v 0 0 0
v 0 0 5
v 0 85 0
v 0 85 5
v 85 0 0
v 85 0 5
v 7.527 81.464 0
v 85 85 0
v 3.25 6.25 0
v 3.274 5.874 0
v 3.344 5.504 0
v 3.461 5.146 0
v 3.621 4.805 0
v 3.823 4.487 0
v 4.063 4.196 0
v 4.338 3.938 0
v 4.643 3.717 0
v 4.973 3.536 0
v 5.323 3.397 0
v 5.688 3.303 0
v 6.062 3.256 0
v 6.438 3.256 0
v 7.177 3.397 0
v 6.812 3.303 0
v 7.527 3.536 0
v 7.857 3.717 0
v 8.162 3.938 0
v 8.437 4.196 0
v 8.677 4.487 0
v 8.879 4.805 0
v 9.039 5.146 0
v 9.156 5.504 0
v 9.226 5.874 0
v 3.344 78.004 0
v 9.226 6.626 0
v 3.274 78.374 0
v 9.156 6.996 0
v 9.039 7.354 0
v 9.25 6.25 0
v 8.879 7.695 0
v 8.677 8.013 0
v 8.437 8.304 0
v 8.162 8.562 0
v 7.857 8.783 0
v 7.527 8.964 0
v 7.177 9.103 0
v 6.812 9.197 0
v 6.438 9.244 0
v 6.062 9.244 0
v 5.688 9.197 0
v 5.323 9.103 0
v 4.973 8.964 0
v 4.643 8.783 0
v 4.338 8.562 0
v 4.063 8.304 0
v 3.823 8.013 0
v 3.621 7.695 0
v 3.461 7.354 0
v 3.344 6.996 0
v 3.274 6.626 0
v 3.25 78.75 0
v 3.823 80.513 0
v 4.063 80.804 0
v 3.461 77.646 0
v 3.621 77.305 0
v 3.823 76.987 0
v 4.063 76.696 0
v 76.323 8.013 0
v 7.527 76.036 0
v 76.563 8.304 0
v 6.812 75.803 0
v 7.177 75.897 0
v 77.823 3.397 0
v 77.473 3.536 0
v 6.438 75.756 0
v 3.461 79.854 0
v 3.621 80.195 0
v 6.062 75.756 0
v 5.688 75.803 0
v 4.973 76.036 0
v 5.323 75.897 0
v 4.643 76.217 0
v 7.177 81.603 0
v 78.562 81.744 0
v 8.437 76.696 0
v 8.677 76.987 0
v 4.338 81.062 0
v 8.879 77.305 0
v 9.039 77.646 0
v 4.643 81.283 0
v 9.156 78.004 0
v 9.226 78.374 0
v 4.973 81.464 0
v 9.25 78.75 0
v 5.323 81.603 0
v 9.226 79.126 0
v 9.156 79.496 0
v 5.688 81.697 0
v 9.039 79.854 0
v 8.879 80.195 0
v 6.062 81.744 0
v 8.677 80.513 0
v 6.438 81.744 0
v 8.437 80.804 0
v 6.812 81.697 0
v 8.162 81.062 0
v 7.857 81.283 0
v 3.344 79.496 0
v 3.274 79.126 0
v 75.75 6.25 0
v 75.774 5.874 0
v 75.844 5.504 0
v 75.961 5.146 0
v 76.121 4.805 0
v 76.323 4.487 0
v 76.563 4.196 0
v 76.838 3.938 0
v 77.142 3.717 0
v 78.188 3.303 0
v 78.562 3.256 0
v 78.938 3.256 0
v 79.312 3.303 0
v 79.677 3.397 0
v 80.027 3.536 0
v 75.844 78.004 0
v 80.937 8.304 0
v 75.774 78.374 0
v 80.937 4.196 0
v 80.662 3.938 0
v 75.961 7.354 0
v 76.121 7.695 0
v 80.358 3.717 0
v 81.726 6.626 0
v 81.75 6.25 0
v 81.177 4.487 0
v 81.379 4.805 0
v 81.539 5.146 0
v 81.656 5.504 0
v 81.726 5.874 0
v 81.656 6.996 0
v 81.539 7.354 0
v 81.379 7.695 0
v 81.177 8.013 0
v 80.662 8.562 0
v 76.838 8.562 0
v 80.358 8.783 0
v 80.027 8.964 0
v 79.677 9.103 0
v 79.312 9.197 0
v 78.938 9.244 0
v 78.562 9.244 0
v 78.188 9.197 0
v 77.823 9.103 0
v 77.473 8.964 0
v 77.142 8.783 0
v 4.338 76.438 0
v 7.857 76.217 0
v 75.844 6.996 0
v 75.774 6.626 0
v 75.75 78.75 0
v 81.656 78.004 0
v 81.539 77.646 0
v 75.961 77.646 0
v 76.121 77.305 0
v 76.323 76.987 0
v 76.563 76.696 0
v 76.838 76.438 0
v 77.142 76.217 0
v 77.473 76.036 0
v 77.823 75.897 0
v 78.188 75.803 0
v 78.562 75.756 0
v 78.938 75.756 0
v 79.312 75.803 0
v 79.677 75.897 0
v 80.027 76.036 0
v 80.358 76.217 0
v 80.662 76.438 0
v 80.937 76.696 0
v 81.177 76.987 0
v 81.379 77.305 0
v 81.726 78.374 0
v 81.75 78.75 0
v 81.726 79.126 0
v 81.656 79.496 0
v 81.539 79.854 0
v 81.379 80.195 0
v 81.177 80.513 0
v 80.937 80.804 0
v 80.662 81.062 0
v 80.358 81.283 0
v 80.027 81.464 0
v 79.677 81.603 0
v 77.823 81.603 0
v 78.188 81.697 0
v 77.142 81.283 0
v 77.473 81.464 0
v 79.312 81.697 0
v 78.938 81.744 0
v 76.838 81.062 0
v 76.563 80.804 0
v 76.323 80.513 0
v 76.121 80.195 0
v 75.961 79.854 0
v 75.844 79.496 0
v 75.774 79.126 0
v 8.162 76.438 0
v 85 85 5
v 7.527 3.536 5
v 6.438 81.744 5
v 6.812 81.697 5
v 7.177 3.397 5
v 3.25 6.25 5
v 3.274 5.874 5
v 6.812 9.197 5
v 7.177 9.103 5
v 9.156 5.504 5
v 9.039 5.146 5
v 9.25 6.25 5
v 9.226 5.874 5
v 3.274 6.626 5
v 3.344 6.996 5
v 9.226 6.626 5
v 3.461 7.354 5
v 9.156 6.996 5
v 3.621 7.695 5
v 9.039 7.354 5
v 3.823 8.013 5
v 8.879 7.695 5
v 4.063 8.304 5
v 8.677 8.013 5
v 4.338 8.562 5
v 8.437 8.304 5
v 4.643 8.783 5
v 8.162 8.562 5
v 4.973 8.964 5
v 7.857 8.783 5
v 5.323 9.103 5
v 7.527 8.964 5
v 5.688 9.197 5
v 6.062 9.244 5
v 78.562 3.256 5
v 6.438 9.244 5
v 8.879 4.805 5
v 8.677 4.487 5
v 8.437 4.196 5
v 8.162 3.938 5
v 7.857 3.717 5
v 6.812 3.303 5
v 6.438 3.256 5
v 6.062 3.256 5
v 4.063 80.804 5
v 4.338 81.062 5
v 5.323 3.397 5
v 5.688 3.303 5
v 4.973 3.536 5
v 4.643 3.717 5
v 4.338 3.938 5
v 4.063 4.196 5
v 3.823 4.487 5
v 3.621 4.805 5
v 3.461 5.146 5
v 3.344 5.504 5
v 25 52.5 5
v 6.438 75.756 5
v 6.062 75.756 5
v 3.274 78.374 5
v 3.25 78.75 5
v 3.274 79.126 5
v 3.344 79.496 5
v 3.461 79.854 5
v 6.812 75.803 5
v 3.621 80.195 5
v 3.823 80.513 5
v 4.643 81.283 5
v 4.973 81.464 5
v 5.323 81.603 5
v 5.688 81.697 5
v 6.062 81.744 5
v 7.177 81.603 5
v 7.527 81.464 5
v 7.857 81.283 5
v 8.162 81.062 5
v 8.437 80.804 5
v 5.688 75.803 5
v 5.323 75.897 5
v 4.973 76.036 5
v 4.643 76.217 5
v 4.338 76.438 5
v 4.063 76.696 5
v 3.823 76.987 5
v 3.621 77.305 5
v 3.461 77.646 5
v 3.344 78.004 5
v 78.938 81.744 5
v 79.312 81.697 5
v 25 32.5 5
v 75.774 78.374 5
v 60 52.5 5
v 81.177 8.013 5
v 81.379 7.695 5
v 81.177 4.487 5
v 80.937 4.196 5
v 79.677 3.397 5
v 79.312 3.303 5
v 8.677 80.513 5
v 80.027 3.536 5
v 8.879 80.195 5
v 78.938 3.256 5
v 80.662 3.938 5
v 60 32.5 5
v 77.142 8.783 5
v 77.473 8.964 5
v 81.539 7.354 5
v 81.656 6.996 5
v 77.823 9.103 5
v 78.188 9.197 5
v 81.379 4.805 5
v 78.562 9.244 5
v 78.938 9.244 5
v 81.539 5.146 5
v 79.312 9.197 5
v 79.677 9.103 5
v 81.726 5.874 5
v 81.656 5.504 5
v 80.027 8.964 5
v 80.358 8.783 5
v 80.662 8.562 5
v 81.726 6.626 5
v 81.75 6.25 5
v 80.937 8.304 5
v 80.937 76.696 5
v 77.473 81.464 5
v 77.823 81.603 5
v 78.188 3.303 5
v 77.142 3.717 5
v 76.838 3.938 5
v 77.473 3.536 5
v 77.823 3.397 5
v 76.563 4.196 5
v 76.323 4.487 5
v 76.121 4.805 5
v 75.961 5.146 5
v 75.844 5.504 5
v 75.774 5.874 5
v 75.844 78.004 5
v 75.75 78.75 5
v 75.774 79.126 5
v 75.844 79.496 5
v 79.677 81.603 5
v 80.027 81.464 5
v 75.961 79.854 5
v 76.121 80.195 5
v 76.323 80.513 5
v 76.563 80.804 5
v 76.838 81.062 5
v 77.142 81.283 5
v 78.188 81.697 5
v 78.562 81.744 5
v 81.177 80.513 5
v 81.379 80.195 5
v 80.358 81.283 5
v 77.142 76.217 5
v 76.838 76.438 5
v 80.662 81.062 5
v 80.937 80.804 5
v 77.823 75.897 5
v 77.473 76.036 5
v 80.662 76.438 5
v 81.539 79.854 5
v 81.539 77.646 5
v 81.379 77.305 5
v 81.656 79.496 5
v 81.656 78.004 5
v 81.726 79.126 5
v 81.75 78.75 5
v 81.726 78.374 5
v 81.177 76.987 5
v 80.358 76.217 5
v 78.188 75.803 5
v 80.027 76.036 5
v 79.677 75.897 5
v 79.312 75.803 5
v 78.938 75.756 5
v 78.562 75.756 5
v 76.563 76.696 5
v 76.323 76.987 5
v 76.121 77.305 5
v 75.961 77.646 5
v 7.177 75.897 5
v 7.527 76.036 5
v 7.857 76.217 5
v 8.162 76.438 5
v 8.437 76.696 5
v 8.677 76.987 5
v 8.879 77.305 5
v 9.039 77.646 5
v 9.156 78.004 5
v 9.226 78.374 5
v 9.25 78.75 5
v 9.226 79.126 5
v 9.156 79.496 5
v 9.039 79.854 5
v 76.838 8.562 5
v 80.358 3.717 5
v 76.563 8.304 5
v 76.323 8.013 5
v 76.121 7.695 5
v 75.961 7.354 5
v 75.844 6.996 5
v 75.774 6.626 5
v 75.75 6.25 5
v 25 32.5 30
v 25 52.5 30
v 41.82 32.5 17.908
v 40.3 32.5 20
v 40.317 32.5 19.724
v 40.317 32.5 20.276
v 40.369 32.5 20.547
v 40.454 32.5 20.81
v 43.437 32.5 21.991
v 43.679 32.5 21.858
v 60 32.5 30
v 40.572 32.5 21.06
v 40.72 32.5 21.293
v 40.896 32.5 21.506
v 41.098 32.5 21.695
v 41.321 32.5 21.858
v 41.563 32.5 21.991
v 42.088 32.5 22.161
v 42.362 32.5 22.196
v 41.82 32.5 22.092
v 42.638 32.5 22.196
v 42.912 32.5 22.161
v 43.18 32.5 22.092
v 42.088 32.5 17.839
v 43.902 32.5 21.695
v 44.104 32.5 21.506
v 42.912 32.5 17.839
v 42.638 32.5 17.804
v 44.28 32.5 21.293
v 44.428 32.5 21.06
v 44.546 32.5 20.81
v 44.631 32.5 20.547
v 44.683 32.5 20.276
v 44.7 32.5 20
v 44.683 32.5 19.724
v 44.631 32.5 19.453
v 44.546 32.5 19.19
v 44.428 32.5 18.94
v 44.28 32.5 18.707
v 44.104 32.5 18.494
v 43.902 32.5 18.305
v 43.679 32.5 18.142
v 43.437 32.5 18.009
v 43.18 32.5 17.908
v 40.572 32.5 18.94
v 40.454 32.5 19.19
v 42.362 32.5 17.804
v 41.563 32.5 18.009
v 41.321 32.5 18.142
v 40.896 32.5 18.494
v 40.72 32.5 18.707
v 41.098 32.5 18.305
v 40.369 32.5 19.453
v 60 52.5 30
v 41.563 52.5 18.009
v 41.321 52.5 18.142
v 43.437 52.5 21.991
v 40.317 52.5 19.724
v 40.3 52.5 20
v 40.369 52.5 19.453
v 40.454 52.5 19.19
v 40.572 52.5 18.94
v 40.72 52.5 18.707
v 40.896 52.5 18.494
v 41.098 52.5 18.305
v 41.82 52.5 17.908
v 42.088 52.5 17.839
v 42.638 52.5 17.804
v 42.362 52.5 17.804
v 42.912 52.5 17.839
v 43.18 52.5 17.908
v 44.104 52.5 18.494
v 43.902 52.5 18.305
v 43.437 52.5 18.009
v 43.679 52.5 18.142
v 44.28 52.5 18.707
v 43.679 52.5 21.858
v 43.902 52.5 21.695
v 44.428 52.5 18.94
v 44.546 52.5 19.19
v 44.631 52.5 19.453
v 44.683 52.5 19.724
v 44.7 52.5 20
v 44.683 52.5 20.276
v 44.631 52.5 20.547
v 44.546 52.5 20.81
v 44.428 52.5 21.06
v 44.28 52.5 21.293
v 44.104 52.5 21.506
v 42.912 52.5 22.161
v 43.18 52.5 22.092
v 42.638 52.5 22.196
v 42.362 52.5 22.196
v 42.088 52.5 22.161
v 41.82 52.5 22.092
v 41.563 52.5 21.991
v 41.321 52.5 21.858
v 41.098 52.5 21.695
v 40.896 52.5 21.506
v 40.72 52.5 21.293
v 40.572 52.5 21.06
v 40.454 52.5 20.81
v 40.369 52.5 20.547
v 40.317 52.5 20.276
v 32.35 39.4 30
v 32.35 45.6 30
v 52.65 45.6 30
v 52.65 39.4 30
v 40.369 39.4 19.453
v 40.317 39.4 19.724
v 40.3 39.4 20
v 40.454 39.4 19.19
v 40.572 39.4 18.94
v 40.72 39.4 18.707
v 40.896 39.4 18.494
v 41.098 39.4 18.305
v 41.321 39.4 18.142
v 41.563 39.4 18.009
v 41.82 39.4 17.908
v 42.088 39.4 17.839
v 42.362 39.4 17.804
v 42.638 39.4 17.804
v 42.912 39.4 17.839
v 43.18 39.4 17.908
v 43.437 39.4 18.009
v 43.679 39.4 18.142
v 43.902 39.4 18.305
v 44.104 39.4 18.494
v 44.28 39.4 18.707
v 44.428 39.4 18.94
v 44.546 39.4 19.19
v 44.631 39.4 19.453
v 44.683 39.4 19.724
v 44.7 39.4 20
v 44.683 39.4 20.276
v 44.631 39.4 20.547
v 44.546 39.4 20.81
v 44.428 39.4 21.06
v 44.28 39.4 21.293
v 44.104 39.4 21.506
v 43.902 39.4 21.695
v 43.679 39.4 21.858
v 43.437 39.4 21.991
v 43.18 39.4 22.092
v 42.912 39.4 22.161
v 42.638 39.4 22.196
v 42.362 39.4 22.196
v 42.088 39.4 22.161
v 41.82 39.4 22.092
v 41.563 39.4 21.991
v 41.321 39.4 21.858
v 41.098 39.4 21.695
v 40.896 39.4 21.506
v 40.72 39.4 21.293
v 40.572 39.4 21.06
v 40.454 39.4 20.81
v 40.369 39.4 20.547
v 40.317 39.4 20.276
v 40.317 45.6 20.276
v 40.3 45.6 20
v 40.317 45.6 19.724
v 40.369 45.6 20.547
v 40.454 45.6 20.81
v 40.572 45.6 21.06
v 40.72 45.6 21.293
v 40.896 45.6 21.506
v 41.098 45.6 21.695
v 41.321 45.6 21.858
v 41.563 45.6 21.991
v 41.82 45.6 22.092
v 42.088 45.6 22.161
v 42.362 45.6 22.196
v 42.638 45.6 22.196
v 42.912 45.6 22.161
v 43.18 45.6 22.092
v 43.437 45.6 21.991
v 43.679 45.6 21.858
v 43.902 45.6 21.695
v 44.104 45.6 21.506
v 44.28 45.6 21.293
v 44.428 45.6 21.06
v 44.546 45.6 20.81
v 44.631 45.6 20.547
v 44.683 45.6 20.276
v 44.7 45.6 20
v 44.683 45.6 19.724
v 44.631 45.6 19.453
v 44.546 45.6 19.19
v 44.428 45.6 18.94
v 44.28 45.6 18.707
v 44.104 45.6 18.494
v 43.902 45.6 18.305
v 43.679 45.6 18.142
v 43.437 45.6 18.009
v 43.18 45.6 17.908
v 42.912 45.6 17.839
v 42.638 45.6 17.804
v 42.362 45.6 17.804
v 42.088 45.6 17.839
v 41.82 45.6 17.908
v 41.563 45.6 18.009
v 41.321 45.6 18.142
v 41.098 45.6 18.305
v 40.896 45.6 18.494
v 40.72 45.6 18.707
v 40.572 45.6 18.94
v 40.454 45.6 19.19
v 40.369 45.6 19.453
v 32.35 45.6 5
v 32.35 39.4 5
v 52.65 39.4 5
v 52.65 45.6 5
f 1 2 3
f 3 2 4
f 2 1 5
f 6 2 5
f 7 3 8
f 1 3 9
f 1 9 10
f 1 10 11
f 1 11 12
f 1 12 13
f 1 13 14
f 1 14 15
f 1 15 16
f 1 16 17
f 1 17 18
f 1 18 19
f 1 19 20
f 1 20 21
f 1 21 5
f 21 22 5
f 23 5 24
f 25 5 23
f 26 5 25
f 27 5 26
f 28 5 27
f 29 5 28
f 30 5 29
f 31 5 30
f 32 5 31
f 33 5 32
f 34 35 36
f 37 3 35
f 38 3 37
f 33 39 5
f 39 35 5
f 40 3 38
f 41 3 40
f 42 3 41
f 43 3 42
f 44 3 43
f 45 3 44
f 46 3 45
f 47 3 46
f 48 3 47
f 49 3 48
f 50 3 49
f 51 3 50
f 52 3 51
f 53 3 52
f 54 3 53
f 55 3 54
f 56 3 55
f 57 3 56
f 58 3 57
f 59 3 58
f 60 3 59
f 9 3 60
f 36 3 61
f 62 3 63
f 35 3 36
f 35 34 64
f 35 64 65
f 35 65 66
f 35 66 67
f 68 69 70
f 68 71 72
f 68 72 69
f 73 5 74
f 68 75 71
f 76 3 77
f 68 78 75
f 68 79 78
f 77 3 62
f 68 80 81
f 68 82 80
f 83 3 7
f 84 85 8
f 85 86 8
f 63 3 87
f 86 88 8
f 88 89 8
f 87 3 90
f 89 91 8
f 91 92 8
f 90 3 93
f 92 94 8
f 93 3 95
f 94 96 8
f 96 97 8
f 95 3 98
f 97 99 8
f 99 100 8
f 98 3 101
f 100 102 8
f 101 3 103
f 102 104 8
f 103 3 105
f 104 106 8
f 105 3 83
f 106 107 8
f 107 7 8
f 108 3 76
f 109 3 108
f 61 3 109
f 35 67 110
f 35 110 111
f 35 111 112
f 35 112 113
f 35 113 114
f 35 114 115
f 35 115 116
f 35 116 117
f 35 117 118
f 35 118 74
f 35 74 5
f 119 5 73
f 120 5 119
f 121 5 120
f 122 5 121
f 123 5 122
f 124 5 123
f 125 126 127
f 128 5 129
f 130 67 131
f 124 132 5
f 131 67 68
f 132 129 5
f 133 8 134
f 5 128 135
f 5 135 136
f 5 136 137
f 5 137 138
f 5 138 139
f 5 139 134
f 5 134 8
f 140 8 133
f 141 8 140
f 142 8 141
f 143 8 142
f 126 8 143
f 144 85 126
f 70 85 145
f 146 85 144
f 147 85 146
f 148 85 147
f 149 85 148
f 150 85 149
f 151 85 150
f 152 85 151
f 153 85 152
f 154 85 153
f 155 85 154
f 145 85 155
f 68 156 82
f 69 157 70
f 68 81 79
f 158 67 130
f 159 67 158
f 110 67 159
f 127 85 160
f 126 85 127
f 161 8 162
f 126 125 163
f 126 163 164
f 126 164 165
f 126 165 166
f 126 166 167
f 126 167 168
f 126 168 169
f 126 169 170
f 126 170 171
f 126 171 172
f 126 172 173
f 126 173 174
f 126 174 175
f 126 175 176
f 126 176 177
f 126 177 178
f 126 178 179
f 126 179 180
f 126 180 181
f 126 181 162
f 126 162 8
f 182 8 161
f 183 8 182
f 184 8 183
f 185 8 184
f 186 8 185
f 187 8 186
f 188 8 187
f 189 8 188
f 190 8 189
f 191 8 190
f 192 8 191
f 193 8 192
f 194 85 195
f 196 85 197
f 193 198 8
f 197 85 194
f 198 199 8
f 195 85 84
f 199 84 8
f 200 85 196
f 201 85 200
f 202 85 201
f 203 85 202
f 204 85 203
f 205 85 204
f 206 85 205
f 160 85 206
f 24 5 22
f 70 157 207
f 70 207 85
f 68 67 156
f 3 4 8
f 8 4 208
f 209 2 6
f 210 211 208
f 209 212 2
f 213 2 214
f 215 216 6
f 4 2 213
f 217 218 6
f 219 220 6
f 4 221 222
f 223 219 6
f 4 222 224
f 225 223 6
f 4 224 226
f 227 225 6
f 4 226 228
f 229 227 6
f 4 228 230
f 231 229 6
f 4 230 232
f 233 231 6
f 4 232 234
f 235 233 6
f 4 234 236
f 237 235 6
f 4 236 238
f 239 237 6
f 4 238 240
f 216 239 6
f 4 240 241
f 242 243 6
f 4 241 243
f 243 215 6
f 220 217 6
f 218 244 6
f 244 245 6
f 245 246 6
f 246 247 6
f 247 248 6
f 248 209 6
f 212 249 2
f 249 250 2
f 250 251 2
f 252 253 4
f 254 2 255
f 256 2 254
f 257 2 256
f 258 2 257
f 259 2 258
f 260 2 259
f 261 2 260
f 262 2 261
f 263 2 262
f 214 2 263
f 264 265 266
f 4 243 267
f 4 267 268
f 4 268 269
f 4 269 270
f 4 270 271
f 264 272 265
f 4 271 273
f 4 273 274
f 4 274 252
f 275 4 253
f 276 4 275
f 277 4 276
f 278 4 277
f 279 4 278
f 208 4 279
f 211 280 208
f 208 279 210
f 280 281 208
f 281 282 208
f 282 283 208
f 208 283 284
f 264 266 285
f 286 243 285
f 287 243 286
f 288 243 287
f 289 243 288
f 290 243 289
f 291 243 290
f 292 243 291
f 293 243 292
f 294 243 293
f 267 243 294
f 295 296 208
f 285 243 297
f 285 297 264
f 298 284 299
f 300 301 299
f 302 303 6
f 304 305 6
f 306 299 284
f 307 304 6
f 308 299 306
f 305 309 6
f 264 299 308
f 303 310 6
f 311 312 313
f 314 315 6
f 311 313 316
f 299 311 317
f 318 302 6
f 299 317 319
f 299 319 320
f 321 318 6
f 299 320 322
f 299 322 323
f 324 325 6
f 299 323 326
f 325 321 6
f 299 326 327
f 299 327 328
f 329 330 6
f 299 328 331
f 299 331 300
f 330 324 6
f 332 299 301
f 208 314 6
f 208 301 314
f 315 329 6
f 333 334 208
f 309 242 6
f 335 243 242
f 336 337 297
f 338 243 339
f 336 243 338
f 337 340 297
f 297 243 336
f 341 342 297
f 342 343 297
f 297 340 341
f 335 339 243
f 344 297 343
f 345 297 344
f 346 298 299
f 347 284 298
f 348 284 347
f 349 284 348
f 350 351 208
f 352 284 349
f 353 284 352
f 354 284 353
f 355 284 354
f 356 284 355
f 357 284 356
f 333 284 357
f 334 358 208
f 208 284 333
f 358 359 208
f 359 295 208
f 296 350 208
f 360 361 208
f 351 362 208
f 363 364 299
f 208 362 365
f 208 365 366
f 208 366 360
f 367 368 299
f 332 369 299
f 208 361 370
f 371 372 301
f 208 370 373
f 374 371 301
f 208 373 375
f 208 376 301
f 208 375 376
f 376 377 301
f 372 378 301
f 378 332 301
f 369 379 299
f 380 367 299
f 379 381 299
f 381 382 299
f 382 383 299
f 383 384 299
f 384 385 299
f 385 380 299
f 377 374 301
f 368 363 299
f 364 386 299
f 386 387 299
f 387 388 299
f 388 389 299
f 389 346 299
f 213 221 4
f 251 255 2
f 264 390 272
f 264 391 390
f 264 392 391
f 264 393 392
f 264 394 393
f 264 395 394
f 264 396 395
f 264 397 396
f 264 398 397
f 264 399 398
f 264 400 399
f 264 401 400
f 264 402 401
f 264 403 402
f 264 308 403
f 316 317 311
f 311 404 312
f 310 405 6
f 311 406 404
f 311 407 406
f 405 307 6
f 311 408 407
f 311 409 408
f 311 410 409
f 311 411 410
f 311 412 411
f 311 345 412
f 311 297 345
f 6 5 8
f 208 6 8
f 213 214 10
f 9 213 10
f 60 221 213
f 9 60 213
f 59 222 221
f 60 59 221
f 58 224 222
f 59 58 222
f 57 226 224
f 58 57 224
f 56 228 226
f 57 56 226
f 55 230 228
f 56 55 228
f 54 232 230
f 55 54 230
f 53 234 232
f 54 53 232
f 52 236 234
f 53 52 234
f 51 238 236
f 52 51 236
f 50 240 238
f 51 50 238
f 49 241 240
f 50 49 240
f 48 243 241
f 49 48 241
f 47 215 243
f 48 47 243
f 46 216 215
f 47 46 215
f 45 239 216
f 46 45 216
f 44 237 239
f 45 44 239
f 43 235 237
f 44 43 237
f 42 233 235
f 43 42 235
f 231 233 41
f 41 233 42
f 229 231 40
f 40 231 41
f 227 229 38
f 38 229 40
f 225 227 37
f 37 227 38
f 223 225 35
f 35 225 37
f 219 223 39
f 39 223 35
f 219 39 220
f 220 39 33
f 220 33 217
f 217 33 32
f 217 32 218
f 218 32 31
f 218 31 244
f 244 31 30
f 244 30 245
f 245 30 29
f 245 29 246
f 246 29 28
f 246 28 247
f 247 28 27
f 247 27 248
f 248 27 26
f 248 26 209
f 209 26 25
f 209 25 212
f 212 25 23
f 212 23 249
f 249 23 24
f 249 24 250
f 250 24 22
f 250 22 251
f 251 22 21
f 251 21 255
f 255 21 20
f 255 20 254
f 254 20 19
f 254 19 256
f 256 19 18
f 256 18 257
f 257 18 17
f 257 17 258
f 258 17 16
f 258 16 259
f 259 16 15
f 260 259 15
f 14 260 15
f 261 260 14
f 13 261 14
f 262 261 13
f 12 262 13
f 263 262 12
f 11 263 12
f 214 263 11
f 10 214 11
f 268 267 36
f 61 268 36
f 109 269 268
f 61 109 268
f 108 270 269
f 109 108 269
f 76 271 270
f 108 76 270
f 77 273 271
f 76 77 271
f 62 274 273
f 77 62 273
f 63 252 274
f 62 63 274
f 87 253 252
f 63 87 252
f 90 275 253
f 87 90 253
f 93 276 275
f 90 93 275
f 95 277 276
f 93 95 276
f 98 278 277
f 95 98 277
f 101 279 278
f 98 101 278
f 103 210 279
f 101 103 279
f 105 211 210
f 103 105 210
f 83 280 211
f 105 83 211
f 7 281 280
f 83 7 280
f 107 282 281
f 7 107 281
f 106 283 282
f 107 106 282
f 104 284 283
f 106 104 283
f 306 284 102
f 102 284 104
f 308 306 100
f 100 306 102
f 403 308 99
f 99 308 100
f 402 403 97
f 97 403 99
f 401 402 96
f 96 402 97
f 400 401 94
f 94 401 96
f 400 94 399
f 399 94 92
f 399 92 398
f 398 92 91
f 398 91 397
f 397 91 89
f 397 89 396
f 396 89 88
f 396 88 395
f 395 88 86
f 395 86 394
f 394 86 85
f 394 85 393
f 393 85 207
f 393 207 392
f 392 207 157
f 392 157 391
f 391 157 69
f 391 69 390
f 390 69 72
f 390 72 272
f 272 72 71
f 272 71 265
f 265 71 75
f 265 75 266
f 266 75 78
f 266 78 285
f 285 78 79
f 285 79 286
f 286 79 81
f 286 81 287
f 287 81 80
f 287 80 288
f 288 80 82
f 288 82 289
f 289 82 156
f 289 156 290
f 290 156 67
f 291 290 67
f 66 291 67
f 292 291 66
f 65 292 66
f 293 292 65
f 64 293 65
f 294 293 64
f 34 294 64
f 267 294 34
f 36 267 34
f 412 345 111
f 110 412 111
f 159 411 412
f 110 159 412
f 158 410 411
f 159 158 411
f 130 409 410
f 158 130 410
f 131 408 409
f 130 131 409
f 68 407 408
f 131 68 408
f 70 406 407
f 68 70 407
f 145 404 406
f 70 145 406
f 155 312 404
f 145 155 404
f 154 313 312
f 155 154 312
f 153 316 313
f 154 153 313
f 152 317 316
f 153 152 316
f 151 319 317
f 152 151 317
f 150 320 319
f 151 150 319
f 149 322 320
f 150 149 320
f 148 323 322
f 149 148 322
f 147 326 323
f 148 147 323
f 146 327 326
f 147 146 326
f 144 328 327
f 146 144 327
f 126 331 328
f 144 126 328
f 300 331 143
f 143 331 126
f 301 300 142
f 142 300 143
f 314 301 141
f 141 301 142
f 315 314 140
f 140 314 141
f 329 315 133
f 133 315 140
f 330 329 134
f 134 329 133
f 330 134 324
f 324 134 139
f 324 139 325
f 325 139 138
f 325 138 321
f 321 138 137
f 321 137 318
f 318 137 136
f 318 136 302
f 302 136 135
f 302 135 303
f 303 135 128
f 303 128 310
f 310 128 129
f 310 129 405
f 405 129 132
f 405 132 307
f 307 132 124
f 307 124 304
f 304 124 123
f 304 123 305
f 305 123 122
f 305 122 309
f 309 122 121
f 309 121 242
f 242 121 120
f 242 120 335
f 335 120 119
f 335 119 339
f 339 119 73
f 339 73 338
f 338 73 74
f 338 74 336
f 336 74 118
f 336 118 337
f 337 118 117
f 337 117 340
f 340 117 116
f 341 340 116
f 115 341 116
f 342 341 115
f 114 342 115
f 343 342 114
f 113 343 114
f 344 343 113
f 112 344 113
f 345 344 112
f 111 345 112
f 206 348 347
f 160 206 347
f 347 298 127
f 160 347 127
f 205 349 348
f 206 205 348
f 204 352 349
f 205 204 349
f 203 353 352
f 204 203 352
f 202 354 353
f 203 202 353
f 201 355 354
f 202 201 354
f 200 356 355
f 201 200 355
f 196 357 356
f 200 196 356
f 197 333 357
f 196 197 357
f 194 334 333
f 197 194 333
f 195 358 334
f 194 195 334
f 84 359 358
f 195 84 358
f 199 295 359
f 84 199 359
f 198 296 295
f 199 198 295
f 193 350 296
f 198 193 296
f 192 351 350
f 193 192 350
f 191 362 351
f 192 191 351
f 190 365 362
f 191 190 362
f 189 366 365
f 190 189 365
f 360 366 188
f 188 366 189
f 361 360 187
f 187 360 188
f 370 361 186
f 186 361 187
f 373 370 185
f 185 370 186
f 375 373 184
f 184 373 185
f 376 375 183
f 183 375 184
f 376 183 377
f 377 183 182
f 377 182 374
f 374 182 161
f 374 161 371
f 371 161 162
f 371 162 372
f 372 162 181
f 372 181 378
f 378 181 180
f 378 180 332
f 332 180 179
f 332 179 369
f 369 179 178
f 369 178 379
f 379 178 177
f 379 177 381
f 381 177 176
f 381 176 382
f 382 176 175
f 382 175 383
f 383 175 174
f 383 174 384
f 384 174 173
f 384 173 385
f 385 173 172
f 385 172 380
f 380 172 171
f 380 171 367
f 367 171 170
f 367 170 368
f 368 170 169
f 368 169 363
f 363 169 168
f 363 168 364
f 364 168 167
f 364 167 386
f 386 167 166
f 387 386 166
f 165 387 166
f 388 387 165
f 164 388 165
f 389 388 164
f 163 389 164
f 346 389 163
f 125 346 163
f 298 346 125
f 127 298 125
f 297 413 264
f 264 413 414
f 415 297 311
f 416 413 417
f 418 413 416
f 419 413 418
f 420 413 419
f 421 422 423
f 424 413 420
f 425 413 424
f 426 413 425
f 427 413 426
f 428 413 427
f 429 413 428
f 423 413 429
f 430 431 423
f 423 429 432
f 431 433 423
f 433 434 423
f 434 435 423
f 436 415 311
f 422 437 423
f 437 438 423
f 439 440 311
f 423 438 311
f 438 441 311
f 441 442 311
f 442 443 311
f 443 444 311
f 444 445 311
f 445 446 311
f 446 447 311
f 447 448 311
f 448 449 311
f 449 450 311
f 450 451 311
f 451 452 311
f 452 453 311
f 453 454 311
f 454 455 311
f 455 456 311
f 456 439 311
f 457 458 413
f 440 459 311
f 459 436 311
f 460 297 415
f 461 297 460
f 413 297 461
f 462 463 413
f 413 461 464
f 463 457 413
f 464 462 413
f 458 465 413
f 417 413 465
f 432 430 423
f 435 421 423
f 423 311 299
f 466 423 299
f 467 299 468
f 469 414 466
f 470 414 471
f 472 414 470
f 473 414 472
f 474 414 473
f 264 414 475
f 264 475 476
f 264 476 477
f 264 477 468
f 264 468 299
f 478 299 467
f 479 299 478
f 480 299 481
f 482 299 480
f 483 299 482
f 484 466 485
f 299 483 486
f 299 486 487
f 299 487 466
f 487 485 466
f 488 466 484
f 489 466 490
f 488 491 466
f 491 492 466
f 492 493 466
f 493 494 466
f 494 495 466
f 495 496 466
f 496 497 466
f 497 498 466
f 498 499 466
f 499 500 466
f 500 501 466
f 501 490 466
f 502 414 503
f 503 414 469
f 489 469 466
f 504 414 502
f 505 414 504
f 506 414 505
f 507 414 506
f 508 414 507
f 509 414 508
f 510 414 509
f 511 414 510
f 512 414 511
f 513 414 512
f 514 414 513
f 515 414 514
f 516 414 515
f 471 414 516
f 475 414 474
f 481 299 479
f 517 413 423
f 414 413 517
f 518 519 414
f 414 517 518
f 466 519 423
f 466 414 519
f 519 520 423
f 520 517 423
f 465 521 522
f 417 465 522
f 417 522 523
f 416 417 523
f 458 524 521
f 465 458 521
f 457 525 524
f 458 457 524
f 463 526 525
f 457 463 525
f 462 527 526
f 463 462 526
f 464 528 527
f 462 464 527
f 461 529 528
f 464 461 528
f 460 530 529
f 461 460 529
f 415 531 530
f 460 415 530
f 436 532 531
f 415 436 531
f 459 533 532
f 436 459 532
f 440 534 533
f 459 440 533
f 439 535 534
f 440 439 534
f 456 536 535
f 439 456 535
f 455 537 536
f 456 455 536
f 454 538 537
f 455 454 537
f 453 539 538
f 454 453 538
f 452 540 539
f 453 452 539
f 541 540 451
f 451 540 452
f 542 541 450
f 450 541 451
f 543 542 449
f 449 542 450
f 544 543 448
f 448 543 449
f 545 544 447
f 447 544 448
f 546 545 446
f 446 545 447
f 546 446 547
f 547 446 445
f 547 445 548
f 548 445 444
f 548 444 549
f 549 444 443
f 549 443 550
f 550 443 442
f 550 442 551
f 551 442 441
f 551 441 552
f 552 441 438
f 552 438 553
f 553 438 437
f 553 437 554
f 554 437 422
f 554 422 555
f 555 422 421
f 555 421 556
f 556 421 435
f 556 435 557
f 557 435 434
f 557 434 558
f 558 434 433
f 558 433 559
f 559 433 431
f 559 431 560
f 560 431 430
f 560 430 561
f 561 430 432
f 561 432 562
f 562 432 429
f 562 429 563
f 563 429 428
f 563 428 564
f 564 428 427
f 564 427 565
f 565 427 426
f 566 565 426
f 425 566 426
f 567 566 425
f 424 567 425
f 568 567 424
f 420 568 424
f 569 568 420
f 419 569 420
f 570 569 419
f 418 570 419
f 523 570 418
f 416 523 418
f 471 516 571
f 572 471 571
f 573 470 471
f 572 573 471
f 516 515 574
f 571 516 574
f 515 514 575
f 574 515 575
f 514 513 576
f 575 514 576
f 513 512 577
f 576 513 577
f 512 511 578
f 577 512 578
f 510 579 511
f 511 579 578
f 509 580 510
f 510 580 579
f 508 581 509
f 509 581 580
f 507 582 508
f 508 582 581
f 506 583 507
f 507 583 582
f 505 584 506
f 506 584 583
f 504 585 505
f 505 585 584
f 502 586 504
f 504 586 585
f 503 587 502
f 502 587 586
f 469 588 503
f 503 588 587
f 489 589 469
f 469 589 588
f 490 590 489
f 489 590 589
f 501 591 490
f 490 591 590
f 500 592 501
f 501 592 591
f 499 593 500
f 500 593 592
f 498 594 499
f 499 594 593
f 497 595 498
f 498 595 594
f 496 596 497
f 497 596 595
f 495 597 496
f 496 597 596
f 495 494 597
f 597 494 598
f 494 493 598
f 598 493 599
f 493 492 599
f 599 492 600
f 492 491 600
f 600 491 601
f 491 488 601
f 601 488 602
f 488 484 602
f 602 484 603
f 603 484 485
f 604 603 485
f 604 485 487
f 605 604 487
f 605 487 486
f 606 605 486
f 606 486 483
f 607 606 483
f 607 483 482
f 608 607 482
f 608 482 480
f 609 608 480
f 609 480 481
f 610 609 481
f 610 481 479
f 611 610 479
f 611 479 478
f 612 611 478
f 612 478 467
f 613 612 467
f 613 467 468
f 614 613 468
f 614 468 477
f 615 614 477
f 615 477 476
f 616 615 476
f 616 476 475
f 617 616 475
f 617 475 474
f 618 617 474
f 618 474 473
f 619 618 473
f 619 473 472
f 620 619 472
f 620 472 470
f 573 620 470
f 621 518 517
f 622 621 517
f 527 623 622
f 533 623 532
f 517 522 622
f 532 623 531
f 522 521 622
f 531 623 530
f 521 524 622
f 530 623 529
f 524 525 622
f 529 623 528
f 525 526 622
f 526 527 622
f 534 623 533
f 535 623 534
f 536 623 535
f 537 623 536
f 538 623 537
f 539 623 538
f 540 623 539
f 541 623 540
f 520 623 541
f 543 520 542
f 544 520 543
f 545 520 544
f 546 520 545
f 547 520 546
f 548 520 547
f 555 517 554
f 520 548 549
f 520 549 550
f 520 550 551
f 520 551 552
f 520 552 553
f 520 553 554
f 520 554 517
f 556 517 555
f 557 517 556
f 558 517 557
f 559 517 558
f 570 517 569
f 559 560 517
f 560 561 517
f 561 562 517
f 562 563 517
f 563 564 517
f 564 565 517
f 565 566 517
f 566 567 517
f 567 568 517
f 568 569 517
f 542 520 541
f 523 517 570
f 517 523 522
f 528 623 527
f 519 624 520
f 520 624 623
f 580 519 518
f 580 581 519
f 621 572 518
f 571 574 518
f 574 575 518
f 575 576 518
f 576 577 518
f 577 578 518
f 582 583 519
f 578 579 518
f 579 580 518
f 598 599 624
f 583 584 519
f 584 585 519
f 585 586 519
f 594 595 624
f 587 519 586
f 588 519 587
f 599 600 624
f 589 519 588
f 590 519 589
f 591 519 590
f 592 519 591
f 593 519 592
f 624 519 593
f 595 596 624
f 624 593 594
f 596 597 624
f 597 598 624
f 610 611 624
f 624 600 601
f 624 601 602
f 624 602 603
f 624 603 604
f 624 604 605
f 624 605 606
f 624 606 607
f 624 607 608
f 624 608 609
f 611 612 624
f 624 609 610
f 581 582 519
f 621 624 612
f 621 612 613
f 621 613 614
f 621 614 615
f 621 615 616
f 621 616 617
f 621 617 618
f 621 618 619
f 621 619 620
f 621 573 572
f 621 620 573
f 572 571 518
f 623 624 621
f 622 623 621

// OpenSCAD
//design file for Fab-DLP Arm Holder 
//part of thew Fab-DLP project https://github.com/fablab-leoben/Fab-dlp
difference () {
union (){
cube ([85,85,5]);
translate([85/2-35/2,85/2-10,5])cube ([35,20,25]);
}
union (){
translate ([12.5/2,12.5/2,-1]) cylinder (r=3,h=100,$fn=50);
translate ([12.5/2,85-12.5/2,-1]) cylinder (r=3,h=100,$fn=50);
translate ([85-12.5/2,12.5/2,-1]) cylinder (r=3,h=100,$fn=50);
translate ([85-12.5/2,85-12.5/2,-1]) cylinder (r=3,h=100,$fn=50);
translate([85/2-20.3/2,85/2-6.2/2,5])cube ([20.3,6.2,30]);

translate ([85/2,0,20]) rotate ([-90,0,0])cylinder (r=
2.2,h=100,$fn=50);
}
}
